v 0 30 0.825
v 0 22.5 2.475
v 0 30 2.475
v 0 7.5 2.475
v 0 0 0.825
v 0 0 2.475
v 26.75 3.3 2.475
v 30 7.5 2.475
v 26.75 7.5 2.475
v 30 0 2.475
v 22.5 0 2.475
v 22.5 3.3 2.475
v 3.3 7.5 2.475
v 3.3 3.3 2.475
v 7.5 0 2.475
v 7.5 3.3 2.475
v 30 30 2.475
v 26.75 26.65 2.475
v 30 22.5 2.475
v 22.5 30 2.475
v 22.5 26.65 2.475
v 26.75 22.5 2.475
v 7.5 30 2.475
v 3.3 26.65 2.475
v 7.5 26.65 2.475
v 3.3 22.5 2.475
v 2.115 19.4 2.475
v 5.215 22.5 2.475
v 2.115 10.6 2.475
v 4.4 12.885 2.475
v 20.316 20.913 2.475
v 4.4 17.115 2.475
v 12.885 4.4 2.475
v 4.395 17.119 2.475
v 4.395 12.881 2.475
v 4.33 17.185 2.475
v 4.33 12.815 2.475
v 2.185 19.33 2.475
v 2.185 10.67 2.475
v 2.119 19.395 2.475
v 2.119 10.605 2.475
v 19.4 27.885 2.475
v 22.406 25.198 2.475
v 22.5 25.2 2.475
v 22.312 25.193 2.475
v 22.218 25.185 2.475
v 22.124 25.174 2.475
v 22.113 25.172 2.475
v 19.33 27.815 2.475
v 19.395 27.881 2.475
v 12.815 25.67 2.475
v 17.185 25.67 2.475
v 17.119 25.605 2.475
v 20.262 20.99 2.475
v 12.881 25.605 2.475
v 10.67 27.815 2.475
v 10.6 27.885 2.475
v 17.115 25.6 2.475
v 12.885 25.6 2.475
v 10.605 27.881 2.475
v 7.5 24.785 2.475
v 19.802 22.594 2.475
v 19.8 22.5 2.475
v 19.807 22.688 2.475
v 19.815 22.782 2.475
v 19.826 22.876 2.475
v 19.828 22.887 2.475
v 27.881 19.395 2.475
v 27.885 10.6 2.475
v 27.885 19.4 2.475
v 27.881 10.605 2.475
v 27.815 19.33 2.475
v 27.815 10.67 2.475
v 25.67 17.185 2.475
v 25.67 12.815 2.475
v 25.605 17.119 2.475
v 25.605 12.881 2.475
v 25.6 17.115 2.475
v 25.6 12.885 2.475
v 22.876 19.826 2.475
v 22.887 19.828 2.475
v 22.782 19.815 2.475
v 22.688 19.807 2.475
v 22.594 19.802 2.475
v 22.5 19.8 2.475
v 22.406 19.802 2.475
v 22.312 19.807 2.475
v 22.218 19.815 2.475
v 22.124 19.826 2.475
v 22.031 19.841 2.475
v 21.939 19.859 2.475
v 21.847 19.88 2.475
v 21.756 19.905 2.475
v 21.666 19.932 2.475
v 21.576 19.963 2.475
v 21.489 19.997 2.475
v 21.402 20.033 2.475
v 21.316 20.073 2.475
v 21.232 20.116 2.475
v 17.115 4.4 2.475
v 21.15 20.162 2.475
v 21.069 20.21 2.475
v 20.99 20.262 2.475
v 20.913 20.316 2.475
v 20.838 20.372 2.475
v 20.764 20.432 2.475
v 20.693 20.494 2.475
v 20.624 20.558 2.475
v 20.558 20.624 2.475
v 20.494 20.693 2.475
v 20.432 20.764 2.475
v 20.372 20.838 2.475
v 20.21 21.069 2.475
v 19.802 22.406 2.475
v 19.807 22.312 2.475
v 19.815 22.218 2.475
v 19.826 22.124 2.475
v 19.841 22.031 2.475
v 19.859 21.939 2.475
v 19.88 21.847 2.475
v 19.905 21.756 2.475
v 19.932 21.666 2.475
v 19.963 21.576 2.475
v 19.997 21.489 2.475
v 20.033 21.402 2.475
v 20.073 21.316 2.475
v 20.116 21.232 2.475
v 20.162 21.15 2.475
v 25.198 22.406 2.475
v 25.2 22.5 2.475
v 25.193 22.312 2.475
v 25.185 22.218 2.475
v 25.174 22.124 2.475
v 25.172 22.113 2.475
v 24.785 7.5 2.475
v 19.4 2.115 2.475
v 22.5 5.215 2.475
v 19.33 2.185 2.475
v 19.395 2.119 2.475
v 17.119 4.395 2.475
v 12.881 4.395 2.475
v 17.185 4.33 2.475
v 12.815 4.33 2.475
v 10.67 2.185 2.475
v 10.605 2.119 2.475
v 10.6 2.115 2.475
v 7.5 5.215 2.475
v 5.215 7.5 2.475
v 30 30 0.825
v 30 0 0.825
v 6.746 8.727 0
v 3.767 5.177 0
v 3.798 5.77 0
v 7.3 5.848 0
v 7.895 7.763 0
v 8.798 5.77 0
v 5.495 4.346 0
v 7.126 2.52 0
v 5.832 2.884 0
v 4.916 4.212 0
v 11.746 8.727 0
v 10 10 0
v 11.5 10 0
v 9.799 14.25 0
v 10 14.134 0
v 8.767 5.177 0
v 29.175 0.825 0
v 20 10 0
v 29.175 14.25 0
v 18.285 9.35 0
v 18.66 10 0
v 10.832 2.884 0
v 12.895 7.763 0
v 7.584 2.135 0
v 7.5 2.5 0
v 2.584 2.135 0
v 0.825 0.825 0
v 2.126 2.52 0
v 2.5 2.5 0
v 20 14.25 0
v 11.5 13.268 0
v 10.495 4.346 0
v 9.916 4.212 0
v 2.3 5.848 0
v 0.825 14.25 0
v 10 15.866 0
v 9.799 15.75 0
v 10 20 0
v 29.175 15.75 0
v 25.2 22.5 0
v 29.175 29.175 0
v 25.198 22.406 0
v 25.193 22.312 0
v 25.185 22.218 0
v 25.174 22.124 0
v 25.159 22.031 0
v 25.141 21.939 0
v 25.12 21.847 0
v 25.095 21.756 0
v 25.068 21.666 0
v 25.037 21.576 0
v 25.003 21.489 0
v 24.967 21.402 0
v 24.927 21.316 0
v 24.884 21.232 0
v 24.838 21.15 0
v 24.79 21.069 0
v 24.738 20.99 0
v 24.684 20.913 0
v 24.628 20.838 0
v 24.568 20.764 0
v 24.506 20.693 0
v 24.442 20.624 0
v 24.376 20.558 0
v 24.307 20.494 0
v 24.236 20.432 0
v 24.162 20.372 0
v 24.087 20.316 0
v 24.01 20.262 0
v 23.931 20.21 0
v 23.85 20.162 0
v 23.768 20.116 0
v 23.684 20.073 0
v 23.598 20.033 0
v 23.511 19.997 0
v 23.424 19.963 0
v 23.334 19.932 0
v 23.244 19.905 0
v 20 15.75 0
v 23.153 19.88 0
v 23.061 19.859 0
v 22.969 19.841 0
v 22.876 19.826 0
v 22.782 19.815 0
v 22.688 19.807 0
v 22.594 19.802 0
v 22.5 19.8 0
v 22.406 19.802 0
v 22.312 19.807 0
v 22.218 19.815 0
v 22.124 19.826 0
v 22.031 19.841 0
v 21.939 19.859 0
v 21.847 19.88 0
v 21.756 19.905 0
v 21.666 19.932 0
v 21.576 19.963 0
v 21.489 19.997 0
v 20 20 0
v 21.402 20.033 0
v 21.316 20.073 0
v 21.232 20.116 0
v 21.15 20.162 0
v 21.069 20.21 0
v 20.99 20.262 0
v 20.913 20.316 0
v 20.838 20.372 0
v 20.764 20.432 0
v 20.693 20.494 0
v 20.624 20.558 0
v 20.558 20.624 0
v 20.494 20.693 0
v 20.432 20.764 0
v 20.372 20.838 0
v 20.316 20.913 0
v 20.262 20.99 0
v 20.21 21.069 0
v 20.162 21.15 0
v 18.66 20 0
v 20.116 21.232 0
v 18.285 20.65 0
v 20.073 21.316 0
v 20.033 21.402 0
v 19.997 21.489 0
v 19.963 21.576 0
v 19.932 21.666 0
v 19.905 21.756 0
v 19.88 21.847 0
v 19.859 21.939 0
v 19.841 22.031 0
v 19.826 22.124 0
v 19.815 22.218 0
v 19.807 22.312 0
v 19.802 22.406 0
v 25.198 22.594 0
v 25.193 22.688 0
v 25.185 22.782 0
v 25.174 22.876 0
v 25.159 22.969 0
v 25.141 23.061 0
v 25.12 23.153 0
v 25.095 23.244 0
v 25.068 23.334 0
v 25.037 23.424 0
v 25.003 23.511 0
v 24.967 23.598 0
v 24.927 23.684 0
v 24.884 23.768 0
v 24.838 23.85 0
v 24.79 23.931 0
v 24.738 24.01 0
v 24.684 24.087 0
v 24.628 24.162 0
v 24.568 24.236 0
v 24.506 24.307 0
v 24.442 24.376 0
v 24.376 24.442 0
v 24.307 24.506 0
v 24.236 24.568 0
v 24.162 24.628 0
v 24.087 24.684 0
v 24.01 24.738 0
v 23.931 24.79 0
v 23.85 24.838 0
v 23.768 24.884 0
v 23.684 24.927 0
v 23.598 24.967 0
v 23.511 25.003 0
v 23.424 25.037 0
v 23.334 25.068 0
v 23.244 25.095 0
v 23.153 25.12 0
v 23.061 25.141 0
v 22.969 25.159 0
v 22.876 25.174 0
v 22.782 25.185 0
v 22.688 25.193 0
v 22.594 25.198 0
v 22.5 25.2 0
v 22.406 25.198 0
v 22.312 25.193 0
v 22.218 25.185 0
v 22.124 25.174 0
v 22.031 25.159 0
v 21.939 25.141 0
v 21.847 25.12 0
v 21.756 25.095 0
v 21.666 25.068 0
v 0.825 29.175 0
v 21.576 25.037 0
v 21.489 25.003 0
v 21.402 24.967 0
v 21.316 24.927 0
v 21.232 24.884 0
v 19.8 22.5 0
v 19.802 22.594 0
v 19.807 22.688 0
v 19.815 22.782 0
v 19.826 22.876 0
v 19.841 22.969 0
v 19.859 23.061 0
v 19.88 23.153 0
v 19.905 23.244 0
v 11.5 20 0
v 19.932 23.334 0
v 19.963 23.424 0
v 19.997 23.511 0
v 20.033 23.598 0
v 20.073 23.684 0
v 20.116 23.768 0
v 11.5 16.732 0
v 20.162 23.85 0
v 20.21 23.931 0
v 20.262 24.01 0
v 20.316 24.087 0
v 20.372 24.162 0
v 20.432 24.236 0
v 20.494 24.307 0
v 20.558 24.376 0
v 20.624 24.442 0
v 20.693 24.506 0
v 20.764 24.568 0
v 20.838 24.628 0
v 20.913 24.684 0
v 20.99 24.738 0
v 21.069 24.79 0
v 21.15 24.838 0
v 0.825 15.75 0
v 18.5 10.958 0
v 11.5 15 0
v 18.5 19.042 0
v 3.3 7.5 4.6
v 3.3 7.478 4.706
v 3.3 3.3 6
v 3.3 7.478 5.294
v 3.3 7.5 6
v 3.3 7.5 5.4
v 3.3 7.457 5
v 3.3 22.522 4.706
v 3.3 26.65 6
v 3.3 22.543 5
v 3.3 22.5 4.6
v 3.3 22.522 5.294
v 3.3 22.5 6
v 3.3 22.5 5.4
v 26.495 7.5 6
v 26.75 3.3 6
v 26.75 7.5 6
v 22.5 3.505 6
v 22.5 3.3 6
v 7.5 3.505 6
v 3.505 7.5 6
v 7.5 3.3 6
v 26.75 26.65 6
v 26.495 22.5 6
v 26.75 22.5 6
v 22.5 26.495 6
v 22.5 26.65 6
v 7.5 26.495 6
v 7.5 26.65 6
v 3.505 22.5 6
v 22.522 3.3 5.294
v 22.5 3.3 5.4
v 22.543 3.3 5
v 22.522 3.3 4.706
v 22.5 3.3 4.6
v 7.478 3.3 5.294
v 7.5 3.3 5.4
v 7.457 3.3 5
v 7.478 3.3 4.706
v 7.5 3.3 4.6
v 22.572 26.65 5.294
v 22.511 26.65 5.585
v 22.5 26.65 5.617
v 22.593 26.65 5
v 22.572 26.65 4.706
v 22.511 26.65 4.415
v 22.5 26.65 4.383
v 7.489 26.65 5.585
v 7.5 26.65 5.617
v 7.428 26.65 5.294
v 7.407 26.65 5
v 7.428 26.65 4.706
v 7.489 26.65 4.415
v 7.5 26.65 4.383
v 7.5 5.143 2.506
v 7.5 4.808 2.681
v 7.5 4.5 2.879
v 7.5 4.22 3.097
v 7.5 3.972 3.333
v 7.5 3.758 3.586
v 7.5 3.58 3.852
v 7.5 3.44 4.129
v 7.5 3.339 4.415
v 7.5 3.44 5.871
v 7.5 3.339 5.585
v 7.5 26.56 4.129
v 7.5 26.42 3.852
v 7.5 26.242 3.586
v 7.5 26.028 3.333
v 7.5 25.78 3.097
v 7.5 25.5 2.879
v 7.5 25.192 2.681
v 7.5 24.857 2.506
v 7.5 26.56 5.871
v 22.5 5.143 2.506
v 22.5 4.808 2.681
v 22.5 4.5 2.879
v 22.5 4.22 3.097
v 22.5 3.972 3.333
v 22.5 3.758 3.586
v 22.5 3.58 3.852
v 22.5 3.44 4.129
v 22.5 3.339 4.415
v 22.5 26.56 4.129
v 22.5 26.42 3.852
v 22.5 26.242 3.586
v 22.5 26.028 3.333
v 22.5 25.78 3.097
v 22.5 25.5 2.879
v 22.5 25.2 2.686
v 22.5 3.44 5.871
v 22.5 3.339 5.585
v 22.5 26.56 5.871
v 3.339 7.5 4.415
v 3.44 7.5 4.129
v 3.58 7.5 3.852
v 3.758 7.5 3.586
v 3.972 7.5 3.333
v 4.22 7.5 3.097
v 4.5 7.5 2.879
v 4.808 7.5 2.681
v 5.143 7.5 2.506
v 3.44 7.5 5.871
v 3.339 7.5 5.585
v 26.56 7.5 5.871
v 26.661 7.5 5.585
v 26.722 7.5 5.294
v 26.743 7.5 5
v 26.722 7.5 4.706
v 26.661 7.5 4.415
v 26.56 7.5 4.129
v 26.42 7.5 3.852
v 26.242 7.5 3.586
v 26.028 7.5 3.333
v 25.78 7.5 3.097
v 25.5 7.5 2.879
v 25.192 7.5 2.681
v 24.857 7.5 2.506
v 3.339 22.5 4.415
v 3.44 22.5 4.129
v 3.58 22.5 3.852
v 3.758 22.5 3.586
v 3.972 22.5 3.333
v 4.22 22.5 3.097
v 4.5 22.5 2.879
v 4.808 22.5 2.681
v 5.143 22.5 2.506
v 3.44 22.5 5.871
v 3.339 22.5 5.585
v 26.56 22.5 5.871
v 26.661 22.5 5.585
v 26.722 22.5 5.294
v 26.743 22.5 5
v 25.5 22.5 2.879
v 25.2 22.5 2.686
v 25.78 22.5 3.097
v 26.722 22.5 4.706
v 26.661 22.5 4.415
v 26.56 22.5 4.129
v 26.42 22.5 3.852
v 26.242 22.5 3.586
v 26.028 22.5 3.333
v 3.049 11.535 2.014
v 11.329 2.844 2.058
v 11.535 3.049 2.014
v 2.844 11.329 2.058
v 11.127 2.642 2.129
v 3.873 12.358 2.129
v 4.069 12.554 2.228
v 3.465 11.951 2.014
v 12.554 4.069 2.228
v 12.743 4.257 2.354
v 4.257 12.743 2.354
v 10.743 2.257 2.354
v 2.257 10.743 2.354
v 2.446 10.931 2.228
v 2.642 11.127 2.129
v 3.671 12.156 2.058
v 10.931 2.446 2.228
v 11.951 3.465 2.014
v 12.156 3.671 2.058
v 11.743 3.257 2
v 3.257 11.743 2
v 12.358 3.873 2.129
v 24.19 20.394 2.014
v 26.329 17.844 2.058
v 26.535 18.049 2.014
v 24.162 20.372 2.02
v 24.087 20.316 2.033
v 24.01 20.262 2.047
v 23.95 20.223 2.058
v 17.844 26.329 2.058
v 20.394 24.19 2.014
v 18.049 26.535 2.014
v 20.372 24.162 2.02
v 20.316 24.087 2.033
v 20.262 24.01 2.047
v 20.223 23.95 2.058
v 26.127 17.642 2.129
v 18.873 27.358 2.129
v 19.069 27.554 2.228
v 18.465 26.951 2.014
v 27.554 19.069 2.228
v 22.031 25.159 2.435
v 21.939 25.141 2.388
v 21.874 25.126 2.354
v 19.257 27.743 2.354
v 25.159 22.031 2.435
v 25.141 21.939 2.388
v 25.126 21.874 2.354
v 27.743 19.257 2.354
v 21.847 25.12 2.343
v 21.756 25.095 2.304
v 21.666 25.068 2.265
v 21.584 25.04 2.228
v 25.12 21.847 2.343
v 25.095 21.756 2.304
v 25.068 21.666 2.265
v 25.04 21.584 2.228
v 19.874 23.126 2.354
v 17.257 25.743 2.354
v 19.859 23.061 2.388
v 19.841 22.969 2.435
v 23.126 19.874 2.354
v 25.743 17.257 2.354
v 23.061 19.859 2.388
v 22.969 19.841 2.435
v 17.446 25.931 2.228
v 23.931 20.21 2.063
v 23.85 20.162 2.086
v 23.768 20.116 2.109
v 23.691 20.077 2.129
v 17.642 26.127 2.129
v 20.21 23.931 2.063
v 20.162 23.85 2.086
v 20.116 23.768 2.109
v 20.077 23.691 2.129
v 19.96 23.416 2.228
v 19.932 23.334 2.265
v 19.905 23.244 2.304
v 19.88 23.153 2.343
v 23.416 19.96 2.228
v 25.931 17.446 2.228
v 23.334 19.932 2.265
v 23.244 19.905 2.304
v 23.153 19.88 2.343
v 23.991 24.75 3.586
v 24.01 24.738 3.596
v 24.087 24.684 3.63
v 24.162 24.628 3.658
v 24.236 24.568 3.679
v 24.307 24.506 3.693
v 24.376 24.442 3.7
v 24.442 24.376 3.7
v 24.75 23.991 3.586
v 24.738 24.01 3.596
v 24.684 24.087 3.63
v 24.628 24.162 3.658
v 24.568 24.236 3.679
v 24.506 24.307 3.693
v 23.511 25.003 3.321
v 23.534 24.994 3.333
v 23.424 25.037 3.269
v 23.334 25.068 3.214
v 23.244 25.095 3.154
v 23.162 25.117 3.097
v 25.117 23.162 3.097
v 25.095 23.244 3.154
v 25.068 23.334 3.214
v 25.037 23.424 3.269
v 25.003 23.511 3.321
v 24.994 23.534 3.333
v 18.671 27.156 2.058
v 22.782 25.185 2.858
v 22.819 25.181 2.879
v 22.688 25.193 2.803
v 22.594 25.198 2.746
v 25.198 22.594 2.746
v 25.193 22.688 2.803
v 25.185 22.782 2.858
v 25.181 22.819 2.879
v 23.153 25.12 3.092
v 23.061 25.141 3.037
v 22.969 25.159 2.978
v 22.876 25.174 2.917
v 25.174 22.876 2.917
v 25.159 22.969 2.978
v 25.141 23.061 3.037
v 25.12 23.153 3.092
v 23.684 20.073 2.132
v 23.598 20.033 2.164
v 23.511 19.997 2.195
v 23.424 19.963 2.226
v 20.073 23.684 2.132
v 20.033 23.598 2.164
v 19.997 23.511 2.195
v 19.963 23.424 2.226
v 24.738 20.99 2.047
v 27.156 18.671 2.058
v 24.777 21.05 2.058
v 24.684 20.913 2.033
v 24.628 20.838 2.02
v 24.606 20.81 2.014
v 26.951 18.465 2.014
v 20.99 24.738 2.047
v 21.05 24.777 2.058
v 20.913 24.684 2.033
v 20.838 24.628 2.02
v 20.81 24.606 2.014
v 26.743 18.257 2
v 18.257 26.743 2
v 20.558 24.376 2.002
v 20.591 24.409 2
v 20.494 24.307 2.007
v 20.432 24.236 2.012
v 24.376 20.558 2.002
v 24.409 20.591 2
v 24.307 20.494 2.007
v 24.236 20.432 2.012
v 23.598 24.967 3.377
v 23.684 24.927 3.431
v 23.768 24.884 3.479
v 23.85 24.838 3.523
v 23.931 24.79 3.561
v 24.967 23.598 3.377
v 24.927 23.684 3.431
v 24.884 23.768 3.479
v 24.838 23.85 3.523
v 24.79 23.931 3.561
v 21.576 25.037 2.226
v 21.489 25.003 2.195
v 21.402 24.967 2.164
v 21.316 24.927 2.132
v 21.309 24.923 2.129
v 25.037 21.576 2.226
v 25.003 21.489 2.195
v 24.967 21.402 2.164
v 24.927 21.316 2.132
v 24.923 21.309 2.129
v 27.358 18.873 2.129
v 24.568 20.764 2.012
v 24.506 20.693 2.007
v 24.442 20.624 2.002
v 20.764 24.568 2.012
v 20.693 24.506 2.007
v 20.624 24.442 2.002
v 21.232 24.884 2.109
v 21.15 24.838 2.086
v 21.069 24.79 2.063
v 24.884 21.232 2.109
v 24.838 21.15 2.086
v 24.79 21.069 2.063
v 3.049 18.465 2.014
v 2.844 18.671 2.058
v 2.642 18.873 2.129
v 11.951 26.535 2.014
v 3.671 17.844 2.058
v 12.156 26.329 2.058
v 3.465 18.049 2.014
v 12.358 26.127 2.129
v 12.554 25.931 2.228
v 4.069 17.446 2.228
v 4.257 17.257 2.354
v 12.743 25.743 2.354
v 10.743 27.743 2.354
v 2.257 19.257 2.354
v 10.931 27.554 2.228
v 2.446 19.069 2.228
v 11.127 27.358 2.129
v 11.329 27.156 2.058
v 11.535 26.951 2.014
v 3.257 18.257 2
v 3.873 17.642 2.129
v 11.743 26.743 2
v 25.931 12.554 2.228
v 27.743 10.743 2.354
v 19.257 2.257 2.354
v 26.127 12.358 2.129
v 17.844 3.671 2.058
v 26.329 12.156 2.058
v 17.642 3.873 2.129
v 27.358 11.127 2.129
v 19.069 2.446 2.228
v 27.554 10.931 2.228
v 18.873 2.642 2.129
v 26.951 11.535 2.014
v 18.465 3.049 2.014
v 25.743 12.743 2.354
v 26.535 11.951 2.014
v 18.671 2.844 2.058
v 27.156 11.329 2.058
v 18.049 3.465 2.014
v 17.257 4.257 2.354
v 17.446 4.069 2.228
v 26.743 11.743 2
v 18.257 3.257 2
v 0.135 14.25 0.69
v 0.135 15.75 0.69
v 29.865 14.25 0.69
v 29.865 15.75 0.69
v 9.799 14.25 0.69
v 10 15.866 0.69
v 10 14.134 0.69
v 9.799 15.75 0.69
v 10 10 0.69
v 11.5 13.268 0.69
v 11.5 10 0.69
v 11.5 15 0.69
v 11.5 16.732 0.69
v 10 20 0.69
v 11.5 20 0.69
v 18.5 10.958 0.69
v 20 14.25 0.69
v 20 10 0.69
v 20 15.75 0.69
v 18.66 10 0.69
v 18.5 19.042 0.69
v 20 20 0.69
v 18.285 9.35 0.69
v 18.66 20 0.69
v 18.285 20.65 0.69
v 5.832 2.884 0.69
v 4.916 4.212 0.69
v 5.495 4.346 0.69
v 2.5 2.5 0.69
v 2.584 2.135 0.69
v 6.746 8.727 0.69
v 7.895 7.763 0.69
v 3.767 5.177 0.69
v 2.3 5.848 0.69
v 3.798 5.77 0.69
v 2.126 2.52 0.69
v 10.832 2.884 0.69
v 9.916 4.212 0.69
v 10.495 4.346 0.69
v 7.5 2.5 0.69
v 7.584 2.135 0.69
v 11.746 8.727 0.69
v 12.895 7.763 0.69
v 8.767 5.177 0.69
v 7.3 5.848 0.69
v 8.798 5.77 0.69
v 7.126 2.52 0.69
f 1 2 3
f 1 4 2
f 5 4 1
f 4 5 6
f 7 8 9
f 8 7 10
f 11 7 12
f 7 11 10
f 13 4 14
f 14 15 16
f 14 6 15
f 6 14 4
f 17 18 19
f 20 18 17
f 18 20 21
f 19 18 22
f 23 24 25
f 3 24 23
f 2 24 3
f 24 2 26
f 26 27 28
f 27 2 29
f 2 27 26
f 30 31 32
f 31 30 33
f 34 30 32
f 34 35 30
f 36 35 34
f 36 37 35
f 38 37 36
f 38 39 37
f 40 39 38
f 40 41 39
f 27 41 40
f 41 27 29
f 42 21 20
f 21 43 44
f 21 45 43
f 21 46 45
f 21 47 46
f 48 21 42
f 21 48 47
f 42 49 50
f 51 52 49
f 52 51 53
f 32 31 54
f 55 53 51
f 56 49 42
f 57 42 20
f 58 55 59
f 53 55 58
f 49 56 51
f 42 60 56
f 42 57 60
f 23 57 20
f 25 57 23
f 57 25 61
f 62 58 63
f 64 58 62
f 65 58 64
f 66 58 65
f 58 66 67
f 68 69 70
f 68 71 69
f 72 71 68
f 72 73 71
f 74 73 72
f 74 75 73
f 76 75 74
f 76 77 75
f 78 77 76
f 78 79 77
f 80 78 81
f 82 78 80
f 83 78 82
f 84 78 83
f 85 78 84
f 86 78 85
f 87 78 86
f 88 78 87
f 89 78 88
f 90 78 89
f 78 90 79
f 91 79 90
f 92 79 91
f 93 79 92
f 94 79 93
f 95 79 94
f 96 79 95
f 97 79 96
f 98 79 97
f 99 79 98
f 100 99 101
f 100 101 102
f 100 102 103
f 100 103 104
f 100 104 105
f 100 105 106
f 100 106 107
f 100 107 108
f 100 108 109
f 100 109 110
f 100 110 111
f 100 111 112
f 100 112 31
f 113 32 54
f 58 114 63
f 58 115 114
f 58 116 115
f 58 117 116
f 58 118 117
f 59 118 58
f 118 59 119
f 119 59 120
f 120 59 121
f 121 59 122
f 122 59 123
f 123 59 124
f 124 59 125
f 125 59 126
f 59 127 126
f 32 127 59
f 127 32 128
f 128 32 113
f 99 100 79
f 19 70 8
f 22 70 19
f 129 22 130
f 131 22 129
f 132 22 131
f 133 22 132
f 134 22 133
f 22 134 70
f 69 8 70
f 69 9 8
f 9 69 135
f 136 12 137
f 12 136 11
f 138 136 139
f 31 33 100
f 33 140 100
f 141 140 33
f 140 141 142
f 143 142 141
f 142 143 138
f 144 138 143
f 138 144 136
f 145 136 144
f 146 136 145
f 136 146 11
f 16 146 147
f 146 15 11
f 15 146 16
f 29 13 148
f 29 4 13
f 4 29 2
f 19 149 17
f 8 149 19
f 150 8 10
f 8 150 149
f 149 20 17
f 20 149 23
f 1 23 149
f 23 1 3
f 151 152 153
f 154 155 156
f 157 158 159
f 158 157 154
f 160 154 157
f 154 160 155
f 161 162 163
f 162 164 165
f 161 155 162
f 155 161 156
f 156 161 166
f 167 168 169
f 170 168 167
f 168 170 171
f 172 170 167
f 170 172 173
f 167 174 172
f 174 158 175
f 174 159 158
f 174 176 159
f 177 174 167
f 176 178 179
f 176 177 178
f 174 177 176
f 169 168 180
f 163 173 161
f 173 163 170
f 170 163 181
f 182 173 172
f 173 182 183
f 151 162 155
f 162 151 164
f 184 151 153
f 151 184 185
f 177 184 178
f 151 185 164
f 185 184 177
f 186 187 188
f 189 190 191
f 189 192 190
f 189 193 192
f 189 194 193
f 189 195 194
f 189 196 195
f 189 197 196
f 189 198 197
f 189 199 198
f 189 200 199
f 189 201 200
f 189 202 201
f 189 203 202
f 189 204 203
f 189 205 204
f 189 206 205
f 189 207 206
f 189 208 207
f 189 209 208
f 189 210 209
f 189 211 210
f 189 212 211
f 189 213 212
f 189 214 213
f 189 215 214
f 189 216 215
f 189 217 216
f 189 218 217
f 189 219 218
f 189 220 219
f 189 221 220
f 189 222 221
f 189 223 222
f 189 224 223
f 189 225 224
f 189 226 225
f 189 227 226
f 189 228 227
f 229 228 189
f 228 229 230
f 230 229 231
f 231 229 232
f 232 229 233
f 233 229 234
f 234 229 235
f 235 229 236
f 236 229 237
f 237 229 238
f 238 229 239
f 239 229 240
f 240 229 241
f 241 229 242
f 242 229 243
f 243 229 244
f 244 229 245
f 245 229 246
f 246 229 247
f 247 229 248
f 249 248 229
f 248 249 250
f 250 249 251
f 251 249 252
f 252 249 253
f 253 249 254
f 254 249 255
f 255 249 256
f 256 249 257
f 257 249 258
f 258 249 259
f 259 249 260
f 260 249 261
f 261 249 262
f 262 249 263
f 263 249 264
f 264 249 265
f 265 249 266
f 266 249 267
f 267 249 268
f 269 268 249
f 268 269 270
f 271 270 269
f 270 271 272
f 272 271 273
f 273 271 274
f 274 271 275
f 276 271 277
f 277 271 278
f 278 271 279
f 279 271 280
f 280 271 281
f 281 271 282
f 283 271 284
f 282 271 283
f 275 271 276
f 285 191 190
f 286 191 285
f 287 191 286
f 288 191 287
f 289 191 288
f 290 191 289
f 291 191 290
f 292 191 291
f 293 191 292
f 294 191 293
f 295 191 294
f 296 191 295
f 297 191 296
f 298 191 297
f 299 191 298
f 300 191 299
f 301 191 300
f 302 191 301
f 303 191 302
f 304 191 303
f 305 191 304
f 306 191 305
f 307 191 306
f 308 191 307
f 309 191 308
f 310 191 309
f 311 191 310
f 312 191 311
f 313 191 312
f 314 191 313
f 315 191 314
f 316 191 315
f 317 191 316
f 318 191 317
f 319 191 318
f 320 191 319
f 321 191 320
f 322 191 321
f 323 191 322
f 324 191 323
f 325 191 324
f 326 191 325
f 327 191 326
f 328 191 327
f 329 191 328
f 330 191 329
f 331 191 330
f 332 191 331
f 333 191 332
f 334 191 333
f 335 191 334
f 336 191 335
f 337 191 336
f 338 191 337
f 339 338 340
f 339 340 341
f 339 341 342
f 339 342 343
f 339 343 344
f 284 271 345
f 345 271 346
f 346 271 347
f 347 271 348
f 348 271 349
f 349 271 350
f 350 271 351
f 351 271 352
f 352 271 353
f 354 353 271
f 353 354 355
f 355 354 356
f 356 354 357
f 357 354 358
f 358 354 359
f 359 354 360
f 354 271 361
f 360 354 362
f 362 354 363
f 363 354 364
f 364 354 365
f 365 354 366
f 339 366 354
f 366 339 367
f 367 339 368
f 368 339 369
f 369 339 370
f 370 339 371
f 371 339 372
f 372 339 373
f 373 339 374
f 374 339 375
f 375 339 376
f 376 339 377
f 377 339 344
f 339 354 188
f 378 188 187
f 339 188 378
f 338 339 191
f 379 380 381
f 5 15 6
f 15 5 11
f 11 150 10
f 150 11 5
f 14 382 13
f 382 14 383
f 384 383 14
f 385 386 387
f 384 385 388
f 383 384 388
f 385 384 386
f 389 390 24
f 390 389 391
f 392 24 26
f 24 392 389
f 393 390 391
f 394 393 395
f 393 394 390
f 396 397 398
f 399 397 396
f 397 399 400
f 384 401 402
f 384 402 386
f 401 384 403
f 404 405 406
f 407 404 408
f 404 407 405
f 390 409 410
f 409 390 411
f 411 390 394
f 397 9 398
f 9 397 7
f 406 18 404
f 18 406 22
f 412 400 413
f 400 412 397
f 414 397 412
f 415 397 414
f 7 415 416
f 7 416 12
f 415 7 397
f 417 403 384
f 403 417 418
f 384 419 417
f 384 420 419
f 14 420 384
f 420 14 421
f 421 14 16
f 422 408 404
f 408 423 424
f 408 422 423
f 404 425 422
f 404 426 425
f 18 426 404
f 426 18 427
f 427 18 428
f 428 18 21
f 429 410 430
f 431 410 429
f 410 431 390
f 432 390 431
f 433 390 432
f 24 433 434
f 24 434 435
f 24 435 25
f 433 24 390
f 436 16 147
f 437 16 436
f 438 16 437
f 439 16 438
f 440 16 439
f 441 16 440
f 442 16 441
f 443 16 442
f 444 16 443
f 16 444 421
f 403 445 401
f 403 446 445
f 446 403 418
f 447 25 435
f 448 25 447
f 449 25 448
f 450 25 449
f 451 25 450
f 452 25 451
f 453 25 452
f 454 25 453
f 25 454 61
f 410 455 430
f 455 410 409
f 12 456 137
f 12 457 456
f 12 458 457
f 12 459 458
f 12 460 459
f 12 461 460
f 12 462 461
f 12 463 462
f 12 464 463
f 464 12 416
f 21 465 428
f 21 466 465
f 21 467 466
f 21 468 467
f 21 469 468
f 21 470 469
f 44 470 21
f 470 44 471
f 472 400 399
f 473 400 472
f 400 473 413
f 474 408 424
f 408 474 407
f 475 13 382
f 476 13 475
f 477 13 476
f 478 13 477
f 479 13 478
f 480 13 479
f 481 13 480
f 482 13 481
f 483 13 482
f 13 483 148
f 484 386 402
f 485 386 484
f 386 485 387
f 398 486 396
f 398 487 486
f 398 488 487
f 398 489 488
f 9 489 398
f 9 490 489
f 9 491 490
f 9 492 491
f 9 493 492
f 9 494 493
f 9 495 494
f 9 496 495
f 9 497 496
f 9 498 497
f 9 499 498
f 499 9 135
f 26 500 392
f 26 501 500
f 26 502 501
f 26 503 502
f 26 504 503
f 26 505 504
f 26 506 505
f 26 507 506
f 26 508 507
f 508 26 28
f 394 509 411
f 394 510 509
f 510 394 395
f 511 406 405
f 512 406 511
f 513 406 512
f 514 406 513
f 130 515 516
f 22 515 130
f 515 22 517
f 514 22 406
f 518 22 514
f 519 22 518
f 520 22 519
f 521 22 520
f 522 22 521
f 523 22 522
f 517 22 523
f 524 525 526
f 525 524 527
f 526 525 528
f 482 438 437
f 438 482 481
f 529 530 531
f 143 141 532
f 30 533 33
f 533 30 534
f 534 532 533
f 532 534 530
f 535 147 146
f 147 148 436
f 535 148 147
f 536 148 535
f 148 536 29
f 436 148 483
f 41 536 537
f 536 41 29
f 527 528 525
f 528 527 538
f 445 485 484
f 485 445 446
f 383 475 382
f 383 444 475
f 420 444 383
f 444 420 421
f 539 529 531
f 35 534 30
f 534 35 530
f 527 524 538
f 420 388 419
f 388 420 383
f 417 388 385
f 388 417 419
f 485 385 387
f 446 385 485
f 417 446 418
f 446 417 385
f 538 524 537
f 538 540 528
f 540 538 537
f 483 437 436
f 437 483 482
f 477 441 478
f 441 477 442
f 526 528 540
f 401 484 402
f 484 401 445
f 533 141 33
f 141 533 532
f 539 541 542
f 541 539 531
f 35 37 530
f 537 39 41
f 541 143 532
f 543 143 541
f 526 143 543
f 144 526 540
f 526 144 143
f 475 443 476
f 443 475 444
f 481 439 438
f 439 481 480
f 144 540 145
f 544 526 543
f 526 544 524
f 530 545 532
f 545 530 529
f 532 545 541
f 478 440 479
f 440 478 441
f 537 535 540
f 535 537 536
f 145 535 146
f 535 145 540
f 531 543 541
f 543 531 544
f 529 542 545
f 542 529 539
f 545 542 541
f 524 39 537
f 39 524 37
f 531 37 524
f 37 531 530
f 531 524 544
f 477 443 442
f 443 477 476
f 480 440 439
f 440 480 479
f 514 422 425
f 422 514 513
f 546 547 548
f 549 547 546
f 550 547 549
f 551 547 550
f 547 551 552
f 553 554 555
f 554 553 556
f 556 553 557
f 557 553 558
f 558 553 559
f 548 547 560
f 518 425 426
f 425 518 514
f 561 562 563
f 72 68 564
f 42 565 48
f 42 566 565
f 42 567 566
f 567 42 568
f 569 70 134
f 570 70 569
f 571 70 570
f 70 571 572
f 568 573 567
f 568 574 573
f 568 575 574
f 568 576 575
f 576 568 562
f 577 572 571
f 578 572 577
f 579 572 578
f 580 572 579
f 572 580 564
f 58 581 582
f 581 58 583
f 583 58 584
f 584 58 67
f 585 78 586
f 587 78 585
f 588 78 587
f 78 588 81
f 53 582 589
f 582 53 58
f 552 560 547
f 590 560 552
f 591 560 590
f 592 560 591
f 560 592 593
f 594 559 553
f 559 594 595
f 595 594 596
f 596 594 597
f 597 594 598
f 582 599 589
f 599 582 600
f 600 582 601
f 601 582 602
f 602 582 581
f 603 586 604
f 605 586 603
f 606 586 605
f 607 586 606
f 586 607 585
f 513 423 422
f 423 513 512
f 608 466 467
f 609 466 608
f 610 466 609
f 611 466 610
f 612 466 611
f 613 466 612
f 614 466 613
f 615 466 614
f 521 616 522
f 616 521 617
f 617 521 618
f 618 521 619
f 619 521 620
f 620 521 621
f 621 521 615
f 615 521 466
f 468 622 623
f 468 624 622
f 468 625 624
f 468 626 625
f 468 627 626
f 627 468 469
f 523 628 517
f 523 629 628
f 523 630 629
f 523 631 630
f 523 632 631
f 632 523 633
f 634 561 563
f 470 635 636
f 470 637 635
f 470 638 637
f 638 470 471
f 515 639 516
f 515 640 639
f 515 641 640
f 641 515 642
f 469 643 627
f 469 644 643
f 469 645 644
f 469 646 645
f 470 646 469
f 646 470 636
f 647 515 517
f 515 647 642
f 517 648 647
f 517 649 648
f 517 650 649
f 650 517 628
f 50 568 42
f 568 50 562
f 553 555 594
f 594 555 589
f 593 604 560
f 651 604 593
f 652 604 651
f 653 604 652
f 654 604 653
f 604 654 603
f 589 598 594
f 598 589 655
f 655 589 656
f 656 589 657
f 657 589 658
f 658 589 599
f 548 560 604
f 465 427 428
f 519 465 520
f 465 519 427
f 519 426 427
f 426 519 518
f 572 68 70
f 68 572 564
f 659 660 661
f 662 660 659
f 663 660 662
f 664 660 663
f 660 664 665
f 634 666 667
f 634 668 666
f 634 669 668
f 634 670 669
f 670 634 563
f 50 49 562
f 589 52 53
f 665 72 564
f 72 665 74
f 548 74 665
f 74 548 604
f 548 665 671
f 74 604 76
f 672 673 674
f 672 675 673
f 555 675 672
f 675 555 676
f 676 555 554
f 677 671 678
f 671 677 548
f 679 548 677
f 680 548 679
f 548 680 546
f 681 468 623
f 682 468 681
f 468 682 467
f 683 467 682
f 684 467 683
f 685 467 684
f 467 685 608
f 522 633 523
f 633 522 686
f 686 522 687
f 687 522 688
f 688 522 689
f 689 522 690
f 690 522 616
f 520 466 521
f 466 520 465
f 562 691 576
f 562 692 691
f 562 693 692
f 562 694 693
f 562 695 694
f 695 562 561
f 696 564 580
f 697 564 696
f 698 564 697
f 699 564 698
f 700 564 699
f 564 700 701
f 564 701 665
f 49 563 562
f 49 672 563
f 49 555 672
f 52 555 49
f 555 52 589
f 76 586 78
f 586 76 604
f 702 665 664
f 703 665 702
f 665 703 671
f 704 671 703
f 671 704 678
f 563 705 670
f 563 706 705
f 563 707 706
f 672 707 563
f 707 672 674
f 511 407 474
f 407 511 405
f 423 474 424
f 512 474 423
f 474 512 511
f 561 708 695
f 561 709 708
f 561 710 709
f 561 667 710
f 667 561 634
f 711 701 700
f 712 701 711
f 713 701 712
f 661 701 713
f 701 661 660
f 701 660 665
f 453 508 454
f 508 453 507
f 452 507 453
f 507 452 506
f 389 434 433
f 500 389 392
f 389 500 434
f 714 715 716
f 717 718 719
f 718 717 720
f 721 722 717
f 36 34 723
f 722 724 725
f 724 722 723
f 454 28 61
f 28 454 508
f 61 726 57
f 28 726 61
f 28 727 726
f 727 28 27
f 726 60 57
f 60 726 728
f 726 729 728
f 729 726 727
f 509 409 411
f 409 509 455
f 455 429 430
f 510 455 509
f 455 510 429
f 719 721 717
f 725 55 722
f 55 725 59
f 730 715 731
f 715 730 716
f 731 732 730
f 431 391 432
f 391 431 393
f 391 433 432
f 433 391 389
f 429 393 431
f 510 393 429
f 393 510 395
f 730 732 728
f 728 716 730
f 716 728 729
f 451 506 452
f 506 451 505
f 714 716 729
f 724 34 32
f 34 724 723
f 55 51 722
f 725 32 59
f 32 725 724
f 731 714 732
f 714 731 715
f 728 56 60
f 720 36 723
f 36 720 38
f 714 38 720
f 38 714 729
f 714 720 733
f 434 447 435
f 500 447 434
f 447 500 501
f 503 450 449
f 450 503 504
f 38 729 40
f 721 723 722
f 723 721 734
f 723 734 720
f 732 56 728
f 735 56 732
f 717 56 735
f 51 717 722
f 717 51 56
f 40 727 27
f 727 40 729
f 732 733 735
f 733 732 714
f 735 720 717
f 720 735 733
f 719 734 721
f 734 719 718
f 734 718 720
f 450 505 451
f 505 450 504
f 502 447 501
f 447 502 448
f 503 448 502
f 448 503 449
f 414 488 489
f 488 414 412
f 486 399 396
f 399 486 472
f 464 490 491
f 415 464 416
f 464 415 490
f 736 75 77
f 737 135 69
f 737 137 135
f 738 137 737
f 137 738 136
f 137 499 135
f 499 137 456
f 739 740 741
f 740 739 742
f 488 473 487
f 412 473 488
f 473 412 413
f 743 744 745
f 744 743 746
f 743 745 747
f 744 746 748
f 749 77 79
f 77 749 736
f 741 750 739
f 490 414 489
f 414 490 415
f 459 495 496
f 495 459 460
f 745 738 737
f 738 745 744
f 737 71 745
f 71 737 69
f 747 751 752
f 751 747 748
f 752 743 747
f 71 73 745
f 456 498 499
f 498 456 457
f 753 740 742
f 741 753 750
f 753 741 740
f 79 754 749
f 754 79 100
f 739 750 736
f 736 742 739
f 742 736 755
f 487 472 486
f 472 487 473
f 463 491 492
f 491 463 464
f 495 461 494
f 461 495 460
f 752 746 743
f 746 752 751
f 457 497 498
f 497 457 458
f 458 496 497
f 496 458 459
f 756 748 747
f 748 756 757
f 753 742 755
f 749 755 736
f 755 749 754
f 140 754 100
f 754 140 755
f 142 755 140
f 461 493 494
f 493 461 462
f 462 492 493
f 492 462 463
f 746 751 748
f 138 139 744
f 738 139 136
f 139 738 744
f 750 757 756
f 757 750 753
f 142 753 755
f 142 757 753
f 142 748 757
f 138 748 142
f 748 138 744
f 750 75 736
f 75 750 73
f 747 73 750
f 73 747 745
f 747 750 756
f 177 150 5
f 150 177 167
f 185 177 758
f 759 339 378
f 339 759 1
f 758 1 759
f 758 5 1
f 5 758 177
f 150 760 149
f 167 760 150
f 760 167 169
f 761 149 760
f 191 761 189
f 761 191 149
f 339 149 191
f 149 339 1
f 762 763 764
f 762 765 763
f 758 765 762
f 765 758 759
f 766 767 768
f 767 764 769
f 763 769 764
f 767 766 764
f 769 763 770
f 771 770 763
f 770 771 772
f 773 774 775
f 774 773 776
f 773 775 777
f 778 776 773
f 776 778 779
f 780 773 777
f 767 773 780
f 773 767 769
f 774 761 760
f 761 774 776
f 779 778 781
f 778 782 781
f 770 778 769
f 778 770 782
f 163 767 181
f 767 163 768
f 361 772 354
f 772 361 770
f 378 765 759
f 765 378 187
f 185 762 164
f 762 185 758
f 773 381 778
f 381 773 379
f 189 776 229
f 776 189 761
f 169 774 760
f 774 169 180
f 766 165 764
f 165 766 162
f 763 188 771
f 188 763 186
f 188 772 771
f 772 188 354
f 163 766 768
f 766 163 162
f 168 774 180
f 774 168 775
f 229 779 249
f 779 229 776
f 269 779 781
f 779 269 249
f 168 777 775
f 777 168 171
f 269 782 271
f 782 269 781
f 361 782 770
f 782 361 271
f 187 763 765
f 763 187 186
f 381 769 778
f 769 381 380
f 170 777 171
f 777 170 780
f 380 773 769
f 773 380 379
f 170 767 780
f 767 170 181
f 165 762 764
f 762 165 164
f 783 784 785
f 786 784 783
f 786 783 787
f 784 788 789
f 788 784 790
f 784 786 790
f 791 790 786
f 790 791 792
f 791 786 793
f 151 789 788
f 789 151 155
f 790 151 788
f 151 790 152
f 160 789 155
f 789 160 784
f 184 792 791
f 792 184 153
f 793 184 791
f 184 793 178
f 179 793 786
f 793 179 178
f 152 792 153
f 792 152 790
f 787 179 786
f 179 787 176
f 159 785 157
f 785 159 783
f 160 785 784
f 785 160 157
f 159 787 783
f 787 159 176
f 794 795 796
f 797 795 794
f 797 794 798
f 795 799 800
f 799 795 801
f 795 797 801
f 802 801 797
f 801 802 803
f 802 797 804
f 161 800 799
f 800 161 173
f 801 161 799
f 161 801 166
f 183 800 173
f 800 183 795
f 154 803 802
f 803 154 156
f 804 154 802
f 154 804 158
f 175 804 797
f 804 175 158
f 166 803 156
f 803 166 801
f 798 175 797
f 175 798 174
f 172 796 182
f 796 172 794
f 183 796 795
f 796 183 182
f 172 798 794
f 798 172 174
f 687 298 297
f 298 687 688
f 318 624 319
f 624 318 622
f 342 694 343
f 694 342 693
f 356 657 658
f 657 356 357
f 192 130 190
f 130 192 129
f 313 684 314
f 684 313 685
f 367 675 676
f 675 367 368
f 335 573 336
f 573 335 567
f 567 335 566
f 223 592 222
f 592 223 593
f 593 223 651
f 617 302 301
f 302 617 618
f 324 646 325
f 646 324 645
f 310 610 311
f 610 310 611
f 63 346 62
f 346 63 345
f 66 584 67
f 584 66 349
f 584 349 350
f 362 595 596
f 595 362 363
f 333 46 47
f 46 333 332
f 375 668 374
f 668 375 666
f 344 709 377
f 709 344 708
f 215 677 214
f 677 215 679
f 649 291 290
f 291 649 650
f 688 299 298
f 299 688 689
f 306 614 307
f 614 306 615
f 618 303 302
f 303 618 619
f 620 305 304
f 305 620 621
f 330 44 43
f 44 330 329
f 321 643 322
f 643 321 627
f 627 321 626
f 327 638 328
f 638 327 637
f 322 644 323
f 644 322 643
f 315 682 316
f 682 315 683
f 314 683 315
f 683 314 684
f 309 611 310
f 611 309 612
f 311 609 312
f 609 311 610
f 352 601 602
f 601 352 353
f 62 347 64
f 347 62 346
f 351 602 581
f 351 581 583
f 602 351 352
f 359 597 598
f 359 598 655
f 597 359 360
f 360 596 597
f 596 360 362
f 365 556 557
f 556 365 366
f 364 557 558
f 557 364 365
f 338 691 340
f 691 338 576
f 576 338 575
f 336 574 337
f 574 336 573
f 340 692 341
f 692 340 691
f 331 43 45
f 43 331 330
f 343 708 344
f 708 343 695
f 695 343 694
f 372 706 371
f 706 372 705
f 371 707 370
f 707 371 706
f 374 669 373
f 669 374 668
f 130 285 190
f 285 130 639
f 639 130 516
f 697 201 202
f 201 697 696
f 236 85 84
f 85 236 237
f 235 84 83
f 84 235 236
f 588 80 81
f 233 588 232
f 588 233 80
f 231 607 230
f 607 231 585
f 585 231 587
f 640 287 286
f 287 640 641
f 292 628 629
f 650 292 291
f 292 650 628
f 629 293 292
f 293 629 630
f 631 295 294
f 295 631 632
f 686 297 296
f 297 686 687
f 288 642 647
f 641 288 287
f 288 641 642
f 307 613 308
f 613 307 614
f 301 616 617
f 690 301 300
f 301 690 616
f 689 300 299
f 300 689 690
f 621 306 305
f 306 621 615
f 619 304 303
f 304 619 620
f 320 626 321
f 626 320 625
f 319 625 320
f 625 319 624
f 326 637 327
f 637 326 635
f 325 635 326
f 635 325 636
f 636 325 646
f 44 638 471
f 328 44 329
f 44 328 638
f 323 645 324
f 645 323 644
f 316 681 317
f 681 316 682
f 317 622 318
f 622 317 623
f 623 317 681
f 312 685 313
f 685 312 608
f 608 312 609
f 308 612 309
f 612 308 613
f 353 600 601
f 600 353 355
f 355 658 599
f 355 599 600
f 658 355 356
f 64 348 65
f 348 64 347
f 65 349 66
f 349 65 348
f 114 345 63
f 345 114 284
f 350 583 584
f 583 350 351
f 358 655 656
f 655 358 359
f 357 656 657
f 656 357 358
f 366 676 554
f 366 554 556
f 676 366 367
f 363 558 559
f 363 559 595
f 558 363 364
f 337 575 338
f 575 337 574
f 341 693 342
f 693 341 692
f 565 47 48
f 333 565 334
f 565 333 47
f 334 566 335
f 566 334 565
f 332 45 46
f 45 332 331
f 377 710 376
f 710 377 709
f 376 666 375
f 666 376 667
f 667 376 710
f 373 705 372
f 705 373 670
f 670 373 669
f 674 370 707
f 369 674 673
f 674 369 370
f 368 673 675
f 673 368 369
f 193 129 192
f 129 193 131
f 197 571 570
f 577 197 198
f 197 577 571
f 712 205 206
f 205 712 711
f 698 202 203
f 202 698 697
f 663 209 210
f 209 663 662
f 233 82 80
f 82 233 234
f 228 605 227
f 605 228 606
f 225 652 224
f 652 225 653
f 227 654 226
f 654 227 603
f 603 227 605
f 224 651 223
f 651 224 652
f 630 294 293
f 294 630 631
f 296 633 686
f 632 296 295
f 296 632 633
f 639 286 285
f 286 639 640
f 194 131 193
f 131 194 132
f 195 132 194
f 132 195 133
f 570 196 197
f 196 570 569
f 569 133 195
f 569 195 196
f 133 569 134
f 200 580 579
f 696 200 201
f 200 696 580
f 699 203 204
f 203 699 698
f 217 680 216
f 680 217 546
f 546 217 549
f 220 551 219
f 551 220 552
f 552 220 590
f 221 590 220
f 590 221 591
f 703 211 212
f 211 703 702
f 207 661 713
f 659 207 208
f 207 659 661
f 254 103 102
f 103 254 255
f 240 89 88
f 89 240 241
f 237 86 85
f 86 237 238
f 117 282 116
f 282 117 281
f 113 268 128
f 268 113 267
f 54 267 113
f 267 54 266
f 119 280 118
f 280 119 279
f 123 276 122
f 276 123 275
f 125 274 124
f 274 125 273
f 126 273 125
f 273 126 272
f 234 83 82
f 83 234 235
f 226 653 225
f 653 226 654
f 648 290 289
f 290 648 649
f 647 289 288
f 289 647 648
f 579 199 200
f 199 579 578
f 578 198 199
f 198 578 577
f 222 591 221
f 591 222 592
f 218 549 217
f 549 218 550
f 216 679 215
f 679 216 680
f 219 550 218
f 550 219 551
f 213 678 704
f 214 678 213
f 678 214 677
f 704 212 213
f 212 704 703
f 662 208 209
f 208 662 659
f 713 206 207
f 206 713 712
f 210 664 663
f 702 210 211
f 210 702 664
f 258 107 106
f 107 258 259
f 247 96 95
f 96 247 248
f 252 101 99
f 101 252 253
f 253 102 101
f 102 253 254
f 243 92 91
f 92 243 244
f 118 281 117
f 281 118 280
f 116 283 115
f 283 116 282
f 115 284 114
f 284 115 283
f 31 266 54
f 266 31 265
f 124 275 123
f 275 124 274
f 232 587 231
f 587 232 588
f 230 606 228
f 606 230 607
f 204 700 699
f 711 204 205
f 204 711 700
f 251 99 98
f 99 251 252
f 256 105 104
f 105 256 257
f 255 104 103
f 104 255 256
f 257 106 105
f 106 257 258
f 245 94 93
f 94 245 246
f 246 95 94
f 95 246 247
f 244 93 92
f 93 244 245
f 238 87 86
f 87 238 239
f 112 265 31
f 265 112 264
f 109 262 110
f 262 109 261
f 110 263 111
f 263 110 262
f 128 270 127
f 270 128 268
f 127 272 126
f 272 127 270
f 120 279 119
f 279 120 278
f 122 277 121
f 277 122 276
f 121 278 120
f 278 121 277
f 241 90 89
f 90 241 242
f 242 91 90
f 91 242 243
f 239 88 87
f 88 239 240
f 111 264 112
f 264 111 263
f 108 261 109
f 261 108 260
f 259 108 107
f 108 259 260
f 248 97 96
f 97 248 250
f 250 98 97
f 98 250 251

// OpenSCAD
// file: sym_arrow.scad
module arrow(thickness, length, size, height)
{
    if (length > 0)
    {
        translate([thickness,-thickness/2,0])cube([length-thickness, thickness, height]);
        rotate([0,0,37])translate([0,-3*thickness/4])cube([size, thickness, height]);
        rotate([0,0,-37])translate([0,-thickness/4])cube([size, thickness, height]);
    }
    else
    {
        translate([0,-thickness/2, 0])cube([-length-thickness, thickness, height]);
        translate([-length,0,0]) mirror([1,0,0]) rotate([0,0,30])translate([0,-3*thickness/4,0])cube([size, thickness, height]);
        translate([-length,0,0]) mirror([1,0,0])rotate([0,0,-30])translate([0,-thickness/4])cube([size, thickness, height]);
    }
}

arrow(0.7, -20, 4.5, 1);
// file: sym_diode.scad
module diode(length, width, thickness, height)
{
    translate([0,-thickness/2,0])cube([(length-width*0.7)/2, thickness, height]);
    translate([(length+width*0.7)/2,-thickness/2,0])cube([(length-width*0.7)/2, thickness, height]);
    
    translate([(length-width)/2,-width/2, 0])cube([thickness, width, height]);
    translate([(length+width*0.7)/2,-width/2, 0])cube([thickness, width, height]);
    //translate([(length+width)/2,-thickness/2,0])cube([(length-width)/2, thickness, height]);
    translate([(length-width)/2,0,0])rotate([0,0,30])translate([0,-thickness/2,0])cube([width, thickness, height]);
    translate([(length-width)/2,0,0])rotate([0,0,-30])translate([0,-thickness/2,0])cube([width, thickness, height]);
}

diode(30, 12, 1, 1);
// file: settings.scad
cube_width=30;
cube_height=16;
cube_thickness=3.3;

cap_width=30;
cap_height=6;
cap_thickness=3.3;

glyph_depth=0.7;
glyph_thickness=1.5;

photo_resitor_hole_r = 2.4;
spring_contact_hole_r = 3.125;
// file: sym_diode_led.scad
use <sym_diode.scad>
use <sym_arrow.scad>

module diode_led(length, width, thickness, height)
{
    diode(length, width, thickness, height);
    translate([width/4,-width*1.25, 0]) rotate([0,0,50]) arrow(thickness, 3*width/4, width/3, height);    
    translate([3*width/4,-width*1.25, 0]) rotate([0,0,50]) arrow(thickness, 3*width/4, width/3, height);
}

diode_led(30, 10, 1, 1);
// file: cap_1x1.scad
include <settings.scad>

module cap_1x1(width, height, thickness, holes_mask)
{
    width1=width-thickness;
    shrink_teeth = 0.02;
    st = shrink_teeth;
    difference()
    {
        union()
        {
            cube([width, width, thickness*3/4]);
            translate([thickness+st,thickness+st,0])cube([width-2*(thickness+st-0.025), width-2*(thickness+st+0.025), height]);
        }
        union()
        {
            //translate([width/2,width/2,0])rotate([0,0,45])translate([-width1/2,-width1/2,thickness*3/4]) cube([width1,width1,height]);
            translate([width/4,0,thickness*3/4])cube([width/2,width,height]);
            translate([0,width/4,thickness*3/4])cube([width,width/2,height]);
            translate([width/4,width/4,width/6])rotate([90,0,45])translate([0,0,-height])cylinder(r=height/2, h=2*height, $fn=64);
            translate([3*width/4,3*width/4,width/6])rotate([90,0,45])translate([0,0,-height])cylinder(r=height/2, h=height*2, $fn=64);
            translate([width/4,3*width/4,width/6])rotate([90,0,-45])translate([0,0,-height])cylinder(r=height/2, h=2*height, $fn=64);
            translate([3*width/4,width/4,width/6])rotate([90,0,-45])translate([0,0,-height])cylinder(r=height/2, h=height*2, $fn=64);
            //corners
            translate([0,0.25*thickness,0])rotate([45,0,0]) translate([-0.5*width, -width, -0.5*height]) cube([2*width, width, 2*height]);
            translate([0.25*thickness,0,0]) rotate([0,-45,0]) translate([-width, -0.5*width, -0.5*height]) cube([width, 2*width, 2*height]);
            translate([width-0.25*thickness,0,0]) rotate([0,45,0]) translate([0, 0, -0.5*height]) cube([width, 2*width, 2*height]);
            translate([0,width-0.25*thickness,0]) rotate([-45,0,0]) translate([-0.5*width, 0, -0.5*height]) cube([2*width, width, 2*height]);
            
            if (holes_mask >= 8)
            {
                translate([width/2, thickness-1.5, -0.5]) cylinder(r=1.15, h=height*1.5, $fn=80);
            }
            if ((holes_mask%8) >= 4)
            {
                translate([width/2, width-thickness+1.5, -0.5]) cylinder(r=1.15, h=height*1.5, $fn=80);
            }
            if ((holes_mask%4)>= 2)
            {
                translate([thickness-1.5, width/2, -0.5]) cylinder(r=1.15, h=height*1.5, $fn=80);
            }
            if (holes_mask%2 >= 1)
            {
                translate([width-thickness+1.5, width/2, -0.5]) cylinder(r=1.15, h=height*1.5, $fn=80);
            }
        }
    }
}

cap_1x1(cap_width, cap_height, cap_thickness, 9);
//ring(10,1,1);
//arrow(1, 20, 3, 1);
//transistor_npn(30, 1, 1);
// main file
use <cap_1x1.scad>
use <sym_diode_led.scad>
include <settings.scad>

module cap_1x1_diode_led(width, height, thickness)
{
    difference()
    {
        cap_1x1(width, height, thickness, 0); //3
        translate([0,width/2,-0.01]) diode_led(width, width/3, glyph_thickness, glyph_depth);
        translate([6*width/8,6*width/8,-0.1])cylinder(r=2.7, h=cap_height+1, $fn=180);
    }
}

cap_1x1_diode_led(cap_width, cap_height, cap_thickness);
